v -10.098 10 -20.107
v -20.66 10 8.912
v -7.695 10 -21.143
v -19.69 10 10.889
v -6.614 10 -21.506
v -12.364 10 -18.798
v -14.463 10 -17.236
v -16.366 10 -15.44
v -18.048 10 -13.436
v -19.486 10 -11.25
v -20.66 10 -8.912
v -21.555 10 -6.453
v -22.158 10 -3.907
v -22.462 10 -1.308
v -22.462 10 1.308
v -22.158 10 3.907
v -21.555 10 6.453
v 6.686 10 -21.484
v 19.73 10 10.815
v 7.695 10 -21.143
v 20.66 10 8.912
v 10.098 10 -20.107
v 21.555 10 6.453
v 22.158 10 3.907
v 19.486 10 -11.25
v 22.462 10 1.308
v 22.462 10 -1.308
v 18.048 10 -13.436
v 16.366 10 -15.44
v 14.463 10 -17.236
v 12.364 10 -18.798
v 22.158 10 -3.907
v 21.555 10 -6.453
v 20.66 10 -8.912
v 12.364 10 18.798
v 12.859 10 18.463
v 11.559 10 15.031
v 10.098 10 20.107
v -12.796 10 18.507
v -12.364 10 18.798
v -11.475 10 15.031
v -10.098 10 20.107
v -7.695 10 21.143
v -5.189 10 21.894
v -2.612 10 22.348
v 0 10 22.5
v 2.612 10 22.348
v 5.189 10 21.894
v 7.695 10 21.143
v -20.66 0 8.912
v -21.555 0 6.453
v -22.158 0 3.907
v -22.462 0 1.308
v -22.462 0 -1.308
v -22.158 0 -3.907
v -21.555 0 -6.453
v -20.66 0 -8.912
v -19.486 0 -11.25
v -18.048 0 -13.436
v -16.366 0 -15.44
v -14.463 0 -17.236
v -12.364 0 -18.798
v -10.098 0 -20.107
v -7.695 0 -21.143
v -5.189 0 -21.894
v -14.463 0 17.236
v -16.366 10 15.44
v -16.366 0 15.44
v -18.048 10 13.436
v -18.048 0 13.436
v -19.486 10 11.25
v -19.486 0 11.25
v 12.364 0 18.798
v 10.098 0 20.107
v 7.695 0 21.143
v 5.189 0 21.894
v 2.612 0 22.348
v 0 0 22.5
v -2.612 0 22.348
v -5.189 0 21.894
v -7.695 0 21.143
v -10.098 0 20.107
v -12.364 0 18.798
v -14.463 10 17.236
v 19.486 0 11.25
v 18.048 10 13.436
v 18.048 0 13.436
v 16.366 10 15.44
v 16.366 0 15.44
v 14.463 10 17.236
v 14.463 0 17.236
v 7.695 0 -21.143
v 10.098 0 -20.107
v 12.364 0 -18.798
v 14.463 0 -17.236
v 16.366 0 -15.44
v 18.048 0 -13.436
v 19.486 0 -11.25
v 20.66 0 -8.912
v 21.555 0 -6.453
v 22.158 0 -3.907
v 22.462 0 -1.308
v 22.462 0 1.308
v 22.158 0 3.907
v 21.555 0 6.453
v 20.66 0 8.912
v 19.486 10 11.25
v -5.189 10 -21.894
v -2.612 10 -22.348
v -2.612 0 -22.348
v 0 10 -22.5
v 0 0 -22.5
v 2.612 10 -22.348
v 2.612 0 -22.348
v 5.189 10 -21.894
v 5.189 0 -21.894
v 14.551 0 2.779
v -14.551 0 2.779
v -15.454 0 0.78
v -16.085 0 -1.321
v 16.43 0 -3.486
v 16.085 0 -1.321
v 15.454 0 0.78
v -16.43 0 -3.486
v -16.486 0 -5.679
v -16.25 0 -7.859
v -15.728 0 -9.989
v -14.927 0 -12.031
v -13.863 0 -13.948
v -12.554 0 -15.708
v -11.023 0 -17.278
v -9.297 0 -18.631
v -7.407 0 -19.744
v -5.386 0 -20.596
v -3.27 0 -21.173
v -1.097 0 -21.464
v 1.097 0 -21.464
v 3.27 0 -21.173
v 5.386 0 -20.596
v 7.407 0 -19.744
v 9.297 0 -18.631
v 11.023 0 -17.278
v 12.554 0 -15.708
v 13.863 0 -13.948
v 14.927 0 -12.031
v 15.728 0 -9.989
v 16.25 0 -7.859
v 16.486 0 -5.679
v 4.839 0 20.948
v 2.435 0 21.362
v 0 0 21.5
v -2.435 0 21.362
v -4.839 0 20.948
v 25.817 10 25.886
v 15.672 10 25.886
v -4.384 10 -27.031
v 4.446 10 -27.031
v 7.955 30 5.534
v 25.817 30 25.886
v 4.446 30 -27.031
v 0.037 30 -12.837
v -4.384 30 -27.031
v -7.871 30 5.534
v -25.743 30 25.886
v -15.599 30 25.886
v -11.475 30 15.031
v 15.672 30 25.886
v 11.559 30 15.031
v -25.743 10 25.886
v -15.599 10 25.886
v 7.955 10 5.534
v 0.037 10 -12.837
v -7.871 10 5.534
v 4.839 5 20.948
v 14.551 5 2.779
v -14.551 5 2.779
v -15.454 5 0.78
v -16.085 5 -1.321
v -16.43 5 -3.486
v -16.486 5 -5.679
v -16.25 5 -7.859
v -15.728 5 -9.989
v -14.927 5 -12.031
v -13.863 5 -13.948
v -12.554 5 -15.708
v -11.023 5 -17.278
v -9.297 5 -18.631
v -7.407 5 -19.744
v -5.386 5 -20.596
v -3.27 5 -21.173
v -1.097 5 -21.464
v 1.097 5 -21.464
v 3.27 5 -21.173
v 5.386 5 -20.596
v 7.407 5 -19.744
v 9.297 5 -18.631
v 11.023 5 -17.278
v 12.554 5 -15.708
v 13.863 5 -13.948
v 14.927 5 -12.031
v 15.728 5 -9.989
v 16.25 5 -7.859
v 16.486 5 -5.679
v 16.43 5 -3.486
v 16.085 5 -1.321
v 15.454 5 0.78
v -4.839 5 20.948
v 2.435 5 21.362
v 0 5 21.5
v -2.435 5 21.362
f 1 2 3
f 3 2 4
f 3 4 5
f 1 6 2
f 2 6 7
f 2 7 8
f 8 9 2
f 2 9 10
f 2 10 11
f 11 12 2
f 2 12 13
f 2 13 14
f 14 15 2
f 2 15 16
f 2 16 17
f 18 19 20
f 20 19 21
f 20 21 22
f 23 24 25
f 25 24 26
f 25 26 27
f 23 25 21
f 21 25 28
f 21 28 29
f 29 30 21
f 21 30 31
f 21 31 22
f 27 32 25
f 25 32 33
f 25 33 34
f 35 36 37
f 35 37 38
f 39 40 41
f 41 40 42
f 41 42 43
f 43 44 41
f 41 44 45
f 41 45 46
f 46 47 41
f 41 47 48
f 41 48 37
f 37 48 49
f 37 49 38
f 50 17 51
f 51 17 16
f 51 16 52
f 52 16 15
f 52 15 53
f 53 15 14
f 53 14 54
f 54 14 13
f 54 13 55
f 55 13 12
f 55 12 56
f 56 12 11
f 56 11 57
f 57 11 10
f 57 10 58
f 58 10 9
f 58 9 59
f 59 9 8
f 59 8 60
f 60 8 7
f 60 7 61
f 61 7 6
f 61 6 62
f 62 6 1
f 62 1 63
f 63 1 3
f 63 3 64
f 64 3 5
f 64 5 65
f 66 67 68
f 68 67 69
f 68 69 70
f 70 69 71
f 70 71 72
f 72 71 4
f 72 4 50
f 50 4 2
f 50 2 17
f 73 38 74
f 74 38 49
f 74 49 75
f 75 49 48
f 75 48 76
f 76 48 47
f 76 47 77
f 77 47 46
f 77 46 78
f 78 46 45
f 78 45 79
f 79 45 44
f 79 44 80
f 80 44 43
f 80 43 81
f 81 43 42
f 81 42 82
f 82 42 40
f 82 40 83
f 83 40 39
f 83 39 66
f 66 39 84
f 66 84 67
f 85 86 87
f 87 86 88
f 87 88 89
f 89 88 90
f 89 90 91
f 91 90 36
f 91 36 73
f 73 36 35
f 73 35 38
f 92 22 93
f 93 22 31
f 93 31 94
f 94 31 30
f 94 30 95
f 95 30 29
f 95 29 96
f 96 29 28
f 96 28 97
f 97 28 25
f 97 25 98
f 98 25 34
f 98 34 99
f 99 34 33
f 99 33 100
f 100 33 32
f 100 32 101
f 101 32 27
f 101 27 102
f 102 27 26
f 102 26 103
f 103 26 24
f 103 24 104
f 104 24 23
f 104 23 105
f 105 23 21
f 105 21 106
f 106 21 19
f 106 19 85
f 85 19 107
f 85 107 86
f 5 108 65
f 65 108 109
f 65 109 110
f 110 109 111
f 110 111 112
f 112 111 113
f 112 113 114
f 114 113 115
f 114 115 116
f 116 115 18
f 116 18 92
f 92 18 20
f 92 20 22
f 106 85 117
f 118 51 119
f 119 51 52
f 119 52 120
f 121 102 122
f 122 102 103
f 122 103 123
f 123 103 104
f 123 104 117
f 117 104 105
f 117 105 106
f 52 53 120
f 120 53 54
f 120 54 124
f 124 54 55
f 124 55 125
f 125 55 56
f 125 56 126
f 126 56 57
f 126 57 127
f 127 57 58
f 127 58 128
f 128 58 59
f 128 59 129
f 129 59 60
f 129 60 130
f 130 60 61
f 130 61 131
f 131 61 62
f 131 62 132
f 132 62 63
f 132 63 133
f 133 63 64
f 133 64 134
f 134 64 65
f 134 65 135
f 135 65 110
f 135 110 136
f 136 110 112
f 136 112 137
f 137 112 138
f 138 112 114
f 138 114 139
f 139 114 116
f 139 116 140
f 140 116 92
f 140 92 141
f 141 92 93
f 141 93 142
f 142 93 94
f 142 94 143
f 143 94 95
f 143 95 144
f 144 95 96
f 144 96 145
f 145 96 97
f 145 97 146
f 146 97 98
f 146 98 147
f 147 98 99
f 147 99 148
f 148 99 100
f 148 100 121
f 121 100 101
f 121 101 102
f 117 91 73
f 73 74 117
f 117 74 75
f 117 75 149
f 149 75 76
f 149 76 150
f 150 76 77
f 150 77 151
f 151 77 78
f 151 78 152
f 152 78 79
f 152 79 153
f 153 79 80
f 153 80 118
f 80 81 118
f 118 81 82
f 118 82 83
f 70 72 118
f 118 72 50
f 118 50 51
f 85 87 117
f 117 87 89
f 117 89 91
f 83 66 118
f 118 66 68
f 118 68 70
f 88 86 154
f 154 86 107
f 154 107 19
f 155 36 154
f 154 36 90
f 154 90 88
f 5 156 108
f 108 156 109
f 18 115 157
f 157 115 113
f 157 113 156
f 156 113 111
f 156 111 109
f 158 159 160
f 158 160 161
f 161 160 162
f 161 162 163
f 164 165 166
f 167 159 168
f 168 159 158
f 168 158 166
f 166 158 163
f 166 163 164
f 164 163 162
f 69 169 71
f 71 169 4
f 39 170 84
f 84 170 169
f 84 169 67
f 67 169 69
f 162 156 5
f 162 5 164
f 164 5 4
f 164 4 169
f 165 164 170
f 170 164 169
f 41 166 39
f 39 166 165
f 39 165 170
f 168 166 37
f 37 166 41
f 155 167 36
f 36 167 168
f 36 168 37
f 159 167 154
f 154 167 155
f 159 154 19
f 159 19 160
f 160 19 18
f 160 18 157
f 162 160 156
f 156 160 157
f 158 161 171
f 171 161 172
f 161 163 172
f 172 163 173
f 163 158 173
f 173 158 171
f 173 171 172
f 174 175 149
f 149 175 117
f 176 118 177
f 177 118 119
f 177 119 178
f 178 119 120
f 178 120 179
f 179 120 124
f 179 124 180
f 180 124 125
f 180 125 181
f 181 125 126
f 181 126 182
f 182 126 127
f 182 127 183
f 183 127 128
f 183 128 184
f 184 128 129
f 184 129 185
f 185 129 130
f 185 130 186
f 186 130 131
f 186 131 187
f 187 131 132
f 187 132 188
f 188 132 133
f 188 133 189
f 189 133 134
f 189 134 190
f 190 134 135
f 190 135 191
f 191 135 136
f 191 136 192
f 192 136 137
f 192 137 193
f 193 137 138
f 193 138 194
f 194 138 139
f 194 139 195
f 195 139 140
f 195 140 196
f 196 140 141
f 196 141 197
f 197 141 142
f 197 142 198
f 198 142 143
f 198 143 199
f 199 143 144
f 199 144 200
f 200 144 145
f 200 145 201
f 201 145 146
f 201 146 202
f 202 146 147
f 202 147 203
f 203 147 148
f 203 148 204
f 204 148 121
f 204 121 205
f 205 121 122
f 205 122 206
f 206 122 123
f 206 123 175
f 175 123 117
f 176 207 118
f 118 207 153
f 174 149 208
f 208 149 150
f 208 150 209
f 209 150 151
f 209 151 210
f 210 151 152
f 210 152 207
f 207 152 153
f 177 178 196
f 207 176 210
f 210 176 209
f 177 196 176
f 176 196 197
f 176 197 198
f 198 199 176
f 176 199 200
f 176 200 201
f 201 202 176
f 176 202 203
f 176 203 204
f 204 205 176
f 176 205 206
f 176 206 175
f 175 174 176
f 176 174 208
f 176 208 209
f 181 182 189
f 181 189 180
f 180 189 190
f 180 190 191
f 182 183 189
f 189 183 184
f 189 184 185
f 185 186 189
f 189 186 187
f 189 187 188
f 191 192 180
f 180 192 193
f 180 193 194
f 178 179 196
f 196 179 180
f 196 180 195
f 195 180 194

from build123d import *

# Parameters (mm, degrees)
SKETCH1_R           = 22.5
BOSS_EXTRUDE1_DEPTH = 10
BOSS_EXTRUDE2_DEPTH = 20
SKETCH3_R           = 16.5
CUT_EXTRUDE2_DEPTH  = 5


with BuildPart() as part:
    # Sketch1 → Boss-Extrude1 (new body)
    with BuildSketch(Plane(origin=(0, 0, 0), x_dir=(1, 0, 0), z_dir=(0, 1, 0))):
        with Locations(Location((0, 0, 0), (0, 0, 270))):
            Circle(SKETCH1_R)
    extrude(amount=BOSS_EXTRUDE1_DEPTH)

    # Sketch2 → Boss-Extrude2 (add)
    with BuildSketch(Plane(origin=(0, 10, 0), x_dir=(1, 0, 0), z_dir=(0, 1, 0))):
        Polygon((-4.383701715, 27.030528991), (4.446343023, 27.030528991), (25.81653533, -25.886137676), (15.672054161, -25.886137676), (11.559140165, -15.031436821), (-11.47529827, -15.031436821), (-15.598812559, -25.886137676), (-25.743293729, -25.886137676), align=None)
        Polygon((0.036620801, 12.836735588), (-7.871198377, -5.533573573), (7.955040272, -5.533573573), align=None, mode=Mode.SUBTRACT)
    extrude(amount=BOSS_EXTRUDE2_DEPTH)

    # Sketch3 → Cut-Extrude2 (cut)
    with BuildSketch(Plane.XZ):
        with BuildLine():
            ThreePointArc((-14.551420086, 2.778571429), (0, 11.5), (14.551420086, 2.778571429))
            Line((14.551420086, 2.778571429), (4.83856504, 20.948467447))
            ThreePointArc((4.83856504, 20.948467447), (0, 21.5), (-4.83856504, 20.948467447))
            Line((-4.83856504, 20.948467447), (-14.551420086, 2.778571429))
        make_face()
        with Locations((0, -5)):
            Circle(SKETCH3_R)
    extrude(amount=-CUT_EXTRUDE2_DEPTH, mode=Mode.SUBTRACT)


solid = part.part
